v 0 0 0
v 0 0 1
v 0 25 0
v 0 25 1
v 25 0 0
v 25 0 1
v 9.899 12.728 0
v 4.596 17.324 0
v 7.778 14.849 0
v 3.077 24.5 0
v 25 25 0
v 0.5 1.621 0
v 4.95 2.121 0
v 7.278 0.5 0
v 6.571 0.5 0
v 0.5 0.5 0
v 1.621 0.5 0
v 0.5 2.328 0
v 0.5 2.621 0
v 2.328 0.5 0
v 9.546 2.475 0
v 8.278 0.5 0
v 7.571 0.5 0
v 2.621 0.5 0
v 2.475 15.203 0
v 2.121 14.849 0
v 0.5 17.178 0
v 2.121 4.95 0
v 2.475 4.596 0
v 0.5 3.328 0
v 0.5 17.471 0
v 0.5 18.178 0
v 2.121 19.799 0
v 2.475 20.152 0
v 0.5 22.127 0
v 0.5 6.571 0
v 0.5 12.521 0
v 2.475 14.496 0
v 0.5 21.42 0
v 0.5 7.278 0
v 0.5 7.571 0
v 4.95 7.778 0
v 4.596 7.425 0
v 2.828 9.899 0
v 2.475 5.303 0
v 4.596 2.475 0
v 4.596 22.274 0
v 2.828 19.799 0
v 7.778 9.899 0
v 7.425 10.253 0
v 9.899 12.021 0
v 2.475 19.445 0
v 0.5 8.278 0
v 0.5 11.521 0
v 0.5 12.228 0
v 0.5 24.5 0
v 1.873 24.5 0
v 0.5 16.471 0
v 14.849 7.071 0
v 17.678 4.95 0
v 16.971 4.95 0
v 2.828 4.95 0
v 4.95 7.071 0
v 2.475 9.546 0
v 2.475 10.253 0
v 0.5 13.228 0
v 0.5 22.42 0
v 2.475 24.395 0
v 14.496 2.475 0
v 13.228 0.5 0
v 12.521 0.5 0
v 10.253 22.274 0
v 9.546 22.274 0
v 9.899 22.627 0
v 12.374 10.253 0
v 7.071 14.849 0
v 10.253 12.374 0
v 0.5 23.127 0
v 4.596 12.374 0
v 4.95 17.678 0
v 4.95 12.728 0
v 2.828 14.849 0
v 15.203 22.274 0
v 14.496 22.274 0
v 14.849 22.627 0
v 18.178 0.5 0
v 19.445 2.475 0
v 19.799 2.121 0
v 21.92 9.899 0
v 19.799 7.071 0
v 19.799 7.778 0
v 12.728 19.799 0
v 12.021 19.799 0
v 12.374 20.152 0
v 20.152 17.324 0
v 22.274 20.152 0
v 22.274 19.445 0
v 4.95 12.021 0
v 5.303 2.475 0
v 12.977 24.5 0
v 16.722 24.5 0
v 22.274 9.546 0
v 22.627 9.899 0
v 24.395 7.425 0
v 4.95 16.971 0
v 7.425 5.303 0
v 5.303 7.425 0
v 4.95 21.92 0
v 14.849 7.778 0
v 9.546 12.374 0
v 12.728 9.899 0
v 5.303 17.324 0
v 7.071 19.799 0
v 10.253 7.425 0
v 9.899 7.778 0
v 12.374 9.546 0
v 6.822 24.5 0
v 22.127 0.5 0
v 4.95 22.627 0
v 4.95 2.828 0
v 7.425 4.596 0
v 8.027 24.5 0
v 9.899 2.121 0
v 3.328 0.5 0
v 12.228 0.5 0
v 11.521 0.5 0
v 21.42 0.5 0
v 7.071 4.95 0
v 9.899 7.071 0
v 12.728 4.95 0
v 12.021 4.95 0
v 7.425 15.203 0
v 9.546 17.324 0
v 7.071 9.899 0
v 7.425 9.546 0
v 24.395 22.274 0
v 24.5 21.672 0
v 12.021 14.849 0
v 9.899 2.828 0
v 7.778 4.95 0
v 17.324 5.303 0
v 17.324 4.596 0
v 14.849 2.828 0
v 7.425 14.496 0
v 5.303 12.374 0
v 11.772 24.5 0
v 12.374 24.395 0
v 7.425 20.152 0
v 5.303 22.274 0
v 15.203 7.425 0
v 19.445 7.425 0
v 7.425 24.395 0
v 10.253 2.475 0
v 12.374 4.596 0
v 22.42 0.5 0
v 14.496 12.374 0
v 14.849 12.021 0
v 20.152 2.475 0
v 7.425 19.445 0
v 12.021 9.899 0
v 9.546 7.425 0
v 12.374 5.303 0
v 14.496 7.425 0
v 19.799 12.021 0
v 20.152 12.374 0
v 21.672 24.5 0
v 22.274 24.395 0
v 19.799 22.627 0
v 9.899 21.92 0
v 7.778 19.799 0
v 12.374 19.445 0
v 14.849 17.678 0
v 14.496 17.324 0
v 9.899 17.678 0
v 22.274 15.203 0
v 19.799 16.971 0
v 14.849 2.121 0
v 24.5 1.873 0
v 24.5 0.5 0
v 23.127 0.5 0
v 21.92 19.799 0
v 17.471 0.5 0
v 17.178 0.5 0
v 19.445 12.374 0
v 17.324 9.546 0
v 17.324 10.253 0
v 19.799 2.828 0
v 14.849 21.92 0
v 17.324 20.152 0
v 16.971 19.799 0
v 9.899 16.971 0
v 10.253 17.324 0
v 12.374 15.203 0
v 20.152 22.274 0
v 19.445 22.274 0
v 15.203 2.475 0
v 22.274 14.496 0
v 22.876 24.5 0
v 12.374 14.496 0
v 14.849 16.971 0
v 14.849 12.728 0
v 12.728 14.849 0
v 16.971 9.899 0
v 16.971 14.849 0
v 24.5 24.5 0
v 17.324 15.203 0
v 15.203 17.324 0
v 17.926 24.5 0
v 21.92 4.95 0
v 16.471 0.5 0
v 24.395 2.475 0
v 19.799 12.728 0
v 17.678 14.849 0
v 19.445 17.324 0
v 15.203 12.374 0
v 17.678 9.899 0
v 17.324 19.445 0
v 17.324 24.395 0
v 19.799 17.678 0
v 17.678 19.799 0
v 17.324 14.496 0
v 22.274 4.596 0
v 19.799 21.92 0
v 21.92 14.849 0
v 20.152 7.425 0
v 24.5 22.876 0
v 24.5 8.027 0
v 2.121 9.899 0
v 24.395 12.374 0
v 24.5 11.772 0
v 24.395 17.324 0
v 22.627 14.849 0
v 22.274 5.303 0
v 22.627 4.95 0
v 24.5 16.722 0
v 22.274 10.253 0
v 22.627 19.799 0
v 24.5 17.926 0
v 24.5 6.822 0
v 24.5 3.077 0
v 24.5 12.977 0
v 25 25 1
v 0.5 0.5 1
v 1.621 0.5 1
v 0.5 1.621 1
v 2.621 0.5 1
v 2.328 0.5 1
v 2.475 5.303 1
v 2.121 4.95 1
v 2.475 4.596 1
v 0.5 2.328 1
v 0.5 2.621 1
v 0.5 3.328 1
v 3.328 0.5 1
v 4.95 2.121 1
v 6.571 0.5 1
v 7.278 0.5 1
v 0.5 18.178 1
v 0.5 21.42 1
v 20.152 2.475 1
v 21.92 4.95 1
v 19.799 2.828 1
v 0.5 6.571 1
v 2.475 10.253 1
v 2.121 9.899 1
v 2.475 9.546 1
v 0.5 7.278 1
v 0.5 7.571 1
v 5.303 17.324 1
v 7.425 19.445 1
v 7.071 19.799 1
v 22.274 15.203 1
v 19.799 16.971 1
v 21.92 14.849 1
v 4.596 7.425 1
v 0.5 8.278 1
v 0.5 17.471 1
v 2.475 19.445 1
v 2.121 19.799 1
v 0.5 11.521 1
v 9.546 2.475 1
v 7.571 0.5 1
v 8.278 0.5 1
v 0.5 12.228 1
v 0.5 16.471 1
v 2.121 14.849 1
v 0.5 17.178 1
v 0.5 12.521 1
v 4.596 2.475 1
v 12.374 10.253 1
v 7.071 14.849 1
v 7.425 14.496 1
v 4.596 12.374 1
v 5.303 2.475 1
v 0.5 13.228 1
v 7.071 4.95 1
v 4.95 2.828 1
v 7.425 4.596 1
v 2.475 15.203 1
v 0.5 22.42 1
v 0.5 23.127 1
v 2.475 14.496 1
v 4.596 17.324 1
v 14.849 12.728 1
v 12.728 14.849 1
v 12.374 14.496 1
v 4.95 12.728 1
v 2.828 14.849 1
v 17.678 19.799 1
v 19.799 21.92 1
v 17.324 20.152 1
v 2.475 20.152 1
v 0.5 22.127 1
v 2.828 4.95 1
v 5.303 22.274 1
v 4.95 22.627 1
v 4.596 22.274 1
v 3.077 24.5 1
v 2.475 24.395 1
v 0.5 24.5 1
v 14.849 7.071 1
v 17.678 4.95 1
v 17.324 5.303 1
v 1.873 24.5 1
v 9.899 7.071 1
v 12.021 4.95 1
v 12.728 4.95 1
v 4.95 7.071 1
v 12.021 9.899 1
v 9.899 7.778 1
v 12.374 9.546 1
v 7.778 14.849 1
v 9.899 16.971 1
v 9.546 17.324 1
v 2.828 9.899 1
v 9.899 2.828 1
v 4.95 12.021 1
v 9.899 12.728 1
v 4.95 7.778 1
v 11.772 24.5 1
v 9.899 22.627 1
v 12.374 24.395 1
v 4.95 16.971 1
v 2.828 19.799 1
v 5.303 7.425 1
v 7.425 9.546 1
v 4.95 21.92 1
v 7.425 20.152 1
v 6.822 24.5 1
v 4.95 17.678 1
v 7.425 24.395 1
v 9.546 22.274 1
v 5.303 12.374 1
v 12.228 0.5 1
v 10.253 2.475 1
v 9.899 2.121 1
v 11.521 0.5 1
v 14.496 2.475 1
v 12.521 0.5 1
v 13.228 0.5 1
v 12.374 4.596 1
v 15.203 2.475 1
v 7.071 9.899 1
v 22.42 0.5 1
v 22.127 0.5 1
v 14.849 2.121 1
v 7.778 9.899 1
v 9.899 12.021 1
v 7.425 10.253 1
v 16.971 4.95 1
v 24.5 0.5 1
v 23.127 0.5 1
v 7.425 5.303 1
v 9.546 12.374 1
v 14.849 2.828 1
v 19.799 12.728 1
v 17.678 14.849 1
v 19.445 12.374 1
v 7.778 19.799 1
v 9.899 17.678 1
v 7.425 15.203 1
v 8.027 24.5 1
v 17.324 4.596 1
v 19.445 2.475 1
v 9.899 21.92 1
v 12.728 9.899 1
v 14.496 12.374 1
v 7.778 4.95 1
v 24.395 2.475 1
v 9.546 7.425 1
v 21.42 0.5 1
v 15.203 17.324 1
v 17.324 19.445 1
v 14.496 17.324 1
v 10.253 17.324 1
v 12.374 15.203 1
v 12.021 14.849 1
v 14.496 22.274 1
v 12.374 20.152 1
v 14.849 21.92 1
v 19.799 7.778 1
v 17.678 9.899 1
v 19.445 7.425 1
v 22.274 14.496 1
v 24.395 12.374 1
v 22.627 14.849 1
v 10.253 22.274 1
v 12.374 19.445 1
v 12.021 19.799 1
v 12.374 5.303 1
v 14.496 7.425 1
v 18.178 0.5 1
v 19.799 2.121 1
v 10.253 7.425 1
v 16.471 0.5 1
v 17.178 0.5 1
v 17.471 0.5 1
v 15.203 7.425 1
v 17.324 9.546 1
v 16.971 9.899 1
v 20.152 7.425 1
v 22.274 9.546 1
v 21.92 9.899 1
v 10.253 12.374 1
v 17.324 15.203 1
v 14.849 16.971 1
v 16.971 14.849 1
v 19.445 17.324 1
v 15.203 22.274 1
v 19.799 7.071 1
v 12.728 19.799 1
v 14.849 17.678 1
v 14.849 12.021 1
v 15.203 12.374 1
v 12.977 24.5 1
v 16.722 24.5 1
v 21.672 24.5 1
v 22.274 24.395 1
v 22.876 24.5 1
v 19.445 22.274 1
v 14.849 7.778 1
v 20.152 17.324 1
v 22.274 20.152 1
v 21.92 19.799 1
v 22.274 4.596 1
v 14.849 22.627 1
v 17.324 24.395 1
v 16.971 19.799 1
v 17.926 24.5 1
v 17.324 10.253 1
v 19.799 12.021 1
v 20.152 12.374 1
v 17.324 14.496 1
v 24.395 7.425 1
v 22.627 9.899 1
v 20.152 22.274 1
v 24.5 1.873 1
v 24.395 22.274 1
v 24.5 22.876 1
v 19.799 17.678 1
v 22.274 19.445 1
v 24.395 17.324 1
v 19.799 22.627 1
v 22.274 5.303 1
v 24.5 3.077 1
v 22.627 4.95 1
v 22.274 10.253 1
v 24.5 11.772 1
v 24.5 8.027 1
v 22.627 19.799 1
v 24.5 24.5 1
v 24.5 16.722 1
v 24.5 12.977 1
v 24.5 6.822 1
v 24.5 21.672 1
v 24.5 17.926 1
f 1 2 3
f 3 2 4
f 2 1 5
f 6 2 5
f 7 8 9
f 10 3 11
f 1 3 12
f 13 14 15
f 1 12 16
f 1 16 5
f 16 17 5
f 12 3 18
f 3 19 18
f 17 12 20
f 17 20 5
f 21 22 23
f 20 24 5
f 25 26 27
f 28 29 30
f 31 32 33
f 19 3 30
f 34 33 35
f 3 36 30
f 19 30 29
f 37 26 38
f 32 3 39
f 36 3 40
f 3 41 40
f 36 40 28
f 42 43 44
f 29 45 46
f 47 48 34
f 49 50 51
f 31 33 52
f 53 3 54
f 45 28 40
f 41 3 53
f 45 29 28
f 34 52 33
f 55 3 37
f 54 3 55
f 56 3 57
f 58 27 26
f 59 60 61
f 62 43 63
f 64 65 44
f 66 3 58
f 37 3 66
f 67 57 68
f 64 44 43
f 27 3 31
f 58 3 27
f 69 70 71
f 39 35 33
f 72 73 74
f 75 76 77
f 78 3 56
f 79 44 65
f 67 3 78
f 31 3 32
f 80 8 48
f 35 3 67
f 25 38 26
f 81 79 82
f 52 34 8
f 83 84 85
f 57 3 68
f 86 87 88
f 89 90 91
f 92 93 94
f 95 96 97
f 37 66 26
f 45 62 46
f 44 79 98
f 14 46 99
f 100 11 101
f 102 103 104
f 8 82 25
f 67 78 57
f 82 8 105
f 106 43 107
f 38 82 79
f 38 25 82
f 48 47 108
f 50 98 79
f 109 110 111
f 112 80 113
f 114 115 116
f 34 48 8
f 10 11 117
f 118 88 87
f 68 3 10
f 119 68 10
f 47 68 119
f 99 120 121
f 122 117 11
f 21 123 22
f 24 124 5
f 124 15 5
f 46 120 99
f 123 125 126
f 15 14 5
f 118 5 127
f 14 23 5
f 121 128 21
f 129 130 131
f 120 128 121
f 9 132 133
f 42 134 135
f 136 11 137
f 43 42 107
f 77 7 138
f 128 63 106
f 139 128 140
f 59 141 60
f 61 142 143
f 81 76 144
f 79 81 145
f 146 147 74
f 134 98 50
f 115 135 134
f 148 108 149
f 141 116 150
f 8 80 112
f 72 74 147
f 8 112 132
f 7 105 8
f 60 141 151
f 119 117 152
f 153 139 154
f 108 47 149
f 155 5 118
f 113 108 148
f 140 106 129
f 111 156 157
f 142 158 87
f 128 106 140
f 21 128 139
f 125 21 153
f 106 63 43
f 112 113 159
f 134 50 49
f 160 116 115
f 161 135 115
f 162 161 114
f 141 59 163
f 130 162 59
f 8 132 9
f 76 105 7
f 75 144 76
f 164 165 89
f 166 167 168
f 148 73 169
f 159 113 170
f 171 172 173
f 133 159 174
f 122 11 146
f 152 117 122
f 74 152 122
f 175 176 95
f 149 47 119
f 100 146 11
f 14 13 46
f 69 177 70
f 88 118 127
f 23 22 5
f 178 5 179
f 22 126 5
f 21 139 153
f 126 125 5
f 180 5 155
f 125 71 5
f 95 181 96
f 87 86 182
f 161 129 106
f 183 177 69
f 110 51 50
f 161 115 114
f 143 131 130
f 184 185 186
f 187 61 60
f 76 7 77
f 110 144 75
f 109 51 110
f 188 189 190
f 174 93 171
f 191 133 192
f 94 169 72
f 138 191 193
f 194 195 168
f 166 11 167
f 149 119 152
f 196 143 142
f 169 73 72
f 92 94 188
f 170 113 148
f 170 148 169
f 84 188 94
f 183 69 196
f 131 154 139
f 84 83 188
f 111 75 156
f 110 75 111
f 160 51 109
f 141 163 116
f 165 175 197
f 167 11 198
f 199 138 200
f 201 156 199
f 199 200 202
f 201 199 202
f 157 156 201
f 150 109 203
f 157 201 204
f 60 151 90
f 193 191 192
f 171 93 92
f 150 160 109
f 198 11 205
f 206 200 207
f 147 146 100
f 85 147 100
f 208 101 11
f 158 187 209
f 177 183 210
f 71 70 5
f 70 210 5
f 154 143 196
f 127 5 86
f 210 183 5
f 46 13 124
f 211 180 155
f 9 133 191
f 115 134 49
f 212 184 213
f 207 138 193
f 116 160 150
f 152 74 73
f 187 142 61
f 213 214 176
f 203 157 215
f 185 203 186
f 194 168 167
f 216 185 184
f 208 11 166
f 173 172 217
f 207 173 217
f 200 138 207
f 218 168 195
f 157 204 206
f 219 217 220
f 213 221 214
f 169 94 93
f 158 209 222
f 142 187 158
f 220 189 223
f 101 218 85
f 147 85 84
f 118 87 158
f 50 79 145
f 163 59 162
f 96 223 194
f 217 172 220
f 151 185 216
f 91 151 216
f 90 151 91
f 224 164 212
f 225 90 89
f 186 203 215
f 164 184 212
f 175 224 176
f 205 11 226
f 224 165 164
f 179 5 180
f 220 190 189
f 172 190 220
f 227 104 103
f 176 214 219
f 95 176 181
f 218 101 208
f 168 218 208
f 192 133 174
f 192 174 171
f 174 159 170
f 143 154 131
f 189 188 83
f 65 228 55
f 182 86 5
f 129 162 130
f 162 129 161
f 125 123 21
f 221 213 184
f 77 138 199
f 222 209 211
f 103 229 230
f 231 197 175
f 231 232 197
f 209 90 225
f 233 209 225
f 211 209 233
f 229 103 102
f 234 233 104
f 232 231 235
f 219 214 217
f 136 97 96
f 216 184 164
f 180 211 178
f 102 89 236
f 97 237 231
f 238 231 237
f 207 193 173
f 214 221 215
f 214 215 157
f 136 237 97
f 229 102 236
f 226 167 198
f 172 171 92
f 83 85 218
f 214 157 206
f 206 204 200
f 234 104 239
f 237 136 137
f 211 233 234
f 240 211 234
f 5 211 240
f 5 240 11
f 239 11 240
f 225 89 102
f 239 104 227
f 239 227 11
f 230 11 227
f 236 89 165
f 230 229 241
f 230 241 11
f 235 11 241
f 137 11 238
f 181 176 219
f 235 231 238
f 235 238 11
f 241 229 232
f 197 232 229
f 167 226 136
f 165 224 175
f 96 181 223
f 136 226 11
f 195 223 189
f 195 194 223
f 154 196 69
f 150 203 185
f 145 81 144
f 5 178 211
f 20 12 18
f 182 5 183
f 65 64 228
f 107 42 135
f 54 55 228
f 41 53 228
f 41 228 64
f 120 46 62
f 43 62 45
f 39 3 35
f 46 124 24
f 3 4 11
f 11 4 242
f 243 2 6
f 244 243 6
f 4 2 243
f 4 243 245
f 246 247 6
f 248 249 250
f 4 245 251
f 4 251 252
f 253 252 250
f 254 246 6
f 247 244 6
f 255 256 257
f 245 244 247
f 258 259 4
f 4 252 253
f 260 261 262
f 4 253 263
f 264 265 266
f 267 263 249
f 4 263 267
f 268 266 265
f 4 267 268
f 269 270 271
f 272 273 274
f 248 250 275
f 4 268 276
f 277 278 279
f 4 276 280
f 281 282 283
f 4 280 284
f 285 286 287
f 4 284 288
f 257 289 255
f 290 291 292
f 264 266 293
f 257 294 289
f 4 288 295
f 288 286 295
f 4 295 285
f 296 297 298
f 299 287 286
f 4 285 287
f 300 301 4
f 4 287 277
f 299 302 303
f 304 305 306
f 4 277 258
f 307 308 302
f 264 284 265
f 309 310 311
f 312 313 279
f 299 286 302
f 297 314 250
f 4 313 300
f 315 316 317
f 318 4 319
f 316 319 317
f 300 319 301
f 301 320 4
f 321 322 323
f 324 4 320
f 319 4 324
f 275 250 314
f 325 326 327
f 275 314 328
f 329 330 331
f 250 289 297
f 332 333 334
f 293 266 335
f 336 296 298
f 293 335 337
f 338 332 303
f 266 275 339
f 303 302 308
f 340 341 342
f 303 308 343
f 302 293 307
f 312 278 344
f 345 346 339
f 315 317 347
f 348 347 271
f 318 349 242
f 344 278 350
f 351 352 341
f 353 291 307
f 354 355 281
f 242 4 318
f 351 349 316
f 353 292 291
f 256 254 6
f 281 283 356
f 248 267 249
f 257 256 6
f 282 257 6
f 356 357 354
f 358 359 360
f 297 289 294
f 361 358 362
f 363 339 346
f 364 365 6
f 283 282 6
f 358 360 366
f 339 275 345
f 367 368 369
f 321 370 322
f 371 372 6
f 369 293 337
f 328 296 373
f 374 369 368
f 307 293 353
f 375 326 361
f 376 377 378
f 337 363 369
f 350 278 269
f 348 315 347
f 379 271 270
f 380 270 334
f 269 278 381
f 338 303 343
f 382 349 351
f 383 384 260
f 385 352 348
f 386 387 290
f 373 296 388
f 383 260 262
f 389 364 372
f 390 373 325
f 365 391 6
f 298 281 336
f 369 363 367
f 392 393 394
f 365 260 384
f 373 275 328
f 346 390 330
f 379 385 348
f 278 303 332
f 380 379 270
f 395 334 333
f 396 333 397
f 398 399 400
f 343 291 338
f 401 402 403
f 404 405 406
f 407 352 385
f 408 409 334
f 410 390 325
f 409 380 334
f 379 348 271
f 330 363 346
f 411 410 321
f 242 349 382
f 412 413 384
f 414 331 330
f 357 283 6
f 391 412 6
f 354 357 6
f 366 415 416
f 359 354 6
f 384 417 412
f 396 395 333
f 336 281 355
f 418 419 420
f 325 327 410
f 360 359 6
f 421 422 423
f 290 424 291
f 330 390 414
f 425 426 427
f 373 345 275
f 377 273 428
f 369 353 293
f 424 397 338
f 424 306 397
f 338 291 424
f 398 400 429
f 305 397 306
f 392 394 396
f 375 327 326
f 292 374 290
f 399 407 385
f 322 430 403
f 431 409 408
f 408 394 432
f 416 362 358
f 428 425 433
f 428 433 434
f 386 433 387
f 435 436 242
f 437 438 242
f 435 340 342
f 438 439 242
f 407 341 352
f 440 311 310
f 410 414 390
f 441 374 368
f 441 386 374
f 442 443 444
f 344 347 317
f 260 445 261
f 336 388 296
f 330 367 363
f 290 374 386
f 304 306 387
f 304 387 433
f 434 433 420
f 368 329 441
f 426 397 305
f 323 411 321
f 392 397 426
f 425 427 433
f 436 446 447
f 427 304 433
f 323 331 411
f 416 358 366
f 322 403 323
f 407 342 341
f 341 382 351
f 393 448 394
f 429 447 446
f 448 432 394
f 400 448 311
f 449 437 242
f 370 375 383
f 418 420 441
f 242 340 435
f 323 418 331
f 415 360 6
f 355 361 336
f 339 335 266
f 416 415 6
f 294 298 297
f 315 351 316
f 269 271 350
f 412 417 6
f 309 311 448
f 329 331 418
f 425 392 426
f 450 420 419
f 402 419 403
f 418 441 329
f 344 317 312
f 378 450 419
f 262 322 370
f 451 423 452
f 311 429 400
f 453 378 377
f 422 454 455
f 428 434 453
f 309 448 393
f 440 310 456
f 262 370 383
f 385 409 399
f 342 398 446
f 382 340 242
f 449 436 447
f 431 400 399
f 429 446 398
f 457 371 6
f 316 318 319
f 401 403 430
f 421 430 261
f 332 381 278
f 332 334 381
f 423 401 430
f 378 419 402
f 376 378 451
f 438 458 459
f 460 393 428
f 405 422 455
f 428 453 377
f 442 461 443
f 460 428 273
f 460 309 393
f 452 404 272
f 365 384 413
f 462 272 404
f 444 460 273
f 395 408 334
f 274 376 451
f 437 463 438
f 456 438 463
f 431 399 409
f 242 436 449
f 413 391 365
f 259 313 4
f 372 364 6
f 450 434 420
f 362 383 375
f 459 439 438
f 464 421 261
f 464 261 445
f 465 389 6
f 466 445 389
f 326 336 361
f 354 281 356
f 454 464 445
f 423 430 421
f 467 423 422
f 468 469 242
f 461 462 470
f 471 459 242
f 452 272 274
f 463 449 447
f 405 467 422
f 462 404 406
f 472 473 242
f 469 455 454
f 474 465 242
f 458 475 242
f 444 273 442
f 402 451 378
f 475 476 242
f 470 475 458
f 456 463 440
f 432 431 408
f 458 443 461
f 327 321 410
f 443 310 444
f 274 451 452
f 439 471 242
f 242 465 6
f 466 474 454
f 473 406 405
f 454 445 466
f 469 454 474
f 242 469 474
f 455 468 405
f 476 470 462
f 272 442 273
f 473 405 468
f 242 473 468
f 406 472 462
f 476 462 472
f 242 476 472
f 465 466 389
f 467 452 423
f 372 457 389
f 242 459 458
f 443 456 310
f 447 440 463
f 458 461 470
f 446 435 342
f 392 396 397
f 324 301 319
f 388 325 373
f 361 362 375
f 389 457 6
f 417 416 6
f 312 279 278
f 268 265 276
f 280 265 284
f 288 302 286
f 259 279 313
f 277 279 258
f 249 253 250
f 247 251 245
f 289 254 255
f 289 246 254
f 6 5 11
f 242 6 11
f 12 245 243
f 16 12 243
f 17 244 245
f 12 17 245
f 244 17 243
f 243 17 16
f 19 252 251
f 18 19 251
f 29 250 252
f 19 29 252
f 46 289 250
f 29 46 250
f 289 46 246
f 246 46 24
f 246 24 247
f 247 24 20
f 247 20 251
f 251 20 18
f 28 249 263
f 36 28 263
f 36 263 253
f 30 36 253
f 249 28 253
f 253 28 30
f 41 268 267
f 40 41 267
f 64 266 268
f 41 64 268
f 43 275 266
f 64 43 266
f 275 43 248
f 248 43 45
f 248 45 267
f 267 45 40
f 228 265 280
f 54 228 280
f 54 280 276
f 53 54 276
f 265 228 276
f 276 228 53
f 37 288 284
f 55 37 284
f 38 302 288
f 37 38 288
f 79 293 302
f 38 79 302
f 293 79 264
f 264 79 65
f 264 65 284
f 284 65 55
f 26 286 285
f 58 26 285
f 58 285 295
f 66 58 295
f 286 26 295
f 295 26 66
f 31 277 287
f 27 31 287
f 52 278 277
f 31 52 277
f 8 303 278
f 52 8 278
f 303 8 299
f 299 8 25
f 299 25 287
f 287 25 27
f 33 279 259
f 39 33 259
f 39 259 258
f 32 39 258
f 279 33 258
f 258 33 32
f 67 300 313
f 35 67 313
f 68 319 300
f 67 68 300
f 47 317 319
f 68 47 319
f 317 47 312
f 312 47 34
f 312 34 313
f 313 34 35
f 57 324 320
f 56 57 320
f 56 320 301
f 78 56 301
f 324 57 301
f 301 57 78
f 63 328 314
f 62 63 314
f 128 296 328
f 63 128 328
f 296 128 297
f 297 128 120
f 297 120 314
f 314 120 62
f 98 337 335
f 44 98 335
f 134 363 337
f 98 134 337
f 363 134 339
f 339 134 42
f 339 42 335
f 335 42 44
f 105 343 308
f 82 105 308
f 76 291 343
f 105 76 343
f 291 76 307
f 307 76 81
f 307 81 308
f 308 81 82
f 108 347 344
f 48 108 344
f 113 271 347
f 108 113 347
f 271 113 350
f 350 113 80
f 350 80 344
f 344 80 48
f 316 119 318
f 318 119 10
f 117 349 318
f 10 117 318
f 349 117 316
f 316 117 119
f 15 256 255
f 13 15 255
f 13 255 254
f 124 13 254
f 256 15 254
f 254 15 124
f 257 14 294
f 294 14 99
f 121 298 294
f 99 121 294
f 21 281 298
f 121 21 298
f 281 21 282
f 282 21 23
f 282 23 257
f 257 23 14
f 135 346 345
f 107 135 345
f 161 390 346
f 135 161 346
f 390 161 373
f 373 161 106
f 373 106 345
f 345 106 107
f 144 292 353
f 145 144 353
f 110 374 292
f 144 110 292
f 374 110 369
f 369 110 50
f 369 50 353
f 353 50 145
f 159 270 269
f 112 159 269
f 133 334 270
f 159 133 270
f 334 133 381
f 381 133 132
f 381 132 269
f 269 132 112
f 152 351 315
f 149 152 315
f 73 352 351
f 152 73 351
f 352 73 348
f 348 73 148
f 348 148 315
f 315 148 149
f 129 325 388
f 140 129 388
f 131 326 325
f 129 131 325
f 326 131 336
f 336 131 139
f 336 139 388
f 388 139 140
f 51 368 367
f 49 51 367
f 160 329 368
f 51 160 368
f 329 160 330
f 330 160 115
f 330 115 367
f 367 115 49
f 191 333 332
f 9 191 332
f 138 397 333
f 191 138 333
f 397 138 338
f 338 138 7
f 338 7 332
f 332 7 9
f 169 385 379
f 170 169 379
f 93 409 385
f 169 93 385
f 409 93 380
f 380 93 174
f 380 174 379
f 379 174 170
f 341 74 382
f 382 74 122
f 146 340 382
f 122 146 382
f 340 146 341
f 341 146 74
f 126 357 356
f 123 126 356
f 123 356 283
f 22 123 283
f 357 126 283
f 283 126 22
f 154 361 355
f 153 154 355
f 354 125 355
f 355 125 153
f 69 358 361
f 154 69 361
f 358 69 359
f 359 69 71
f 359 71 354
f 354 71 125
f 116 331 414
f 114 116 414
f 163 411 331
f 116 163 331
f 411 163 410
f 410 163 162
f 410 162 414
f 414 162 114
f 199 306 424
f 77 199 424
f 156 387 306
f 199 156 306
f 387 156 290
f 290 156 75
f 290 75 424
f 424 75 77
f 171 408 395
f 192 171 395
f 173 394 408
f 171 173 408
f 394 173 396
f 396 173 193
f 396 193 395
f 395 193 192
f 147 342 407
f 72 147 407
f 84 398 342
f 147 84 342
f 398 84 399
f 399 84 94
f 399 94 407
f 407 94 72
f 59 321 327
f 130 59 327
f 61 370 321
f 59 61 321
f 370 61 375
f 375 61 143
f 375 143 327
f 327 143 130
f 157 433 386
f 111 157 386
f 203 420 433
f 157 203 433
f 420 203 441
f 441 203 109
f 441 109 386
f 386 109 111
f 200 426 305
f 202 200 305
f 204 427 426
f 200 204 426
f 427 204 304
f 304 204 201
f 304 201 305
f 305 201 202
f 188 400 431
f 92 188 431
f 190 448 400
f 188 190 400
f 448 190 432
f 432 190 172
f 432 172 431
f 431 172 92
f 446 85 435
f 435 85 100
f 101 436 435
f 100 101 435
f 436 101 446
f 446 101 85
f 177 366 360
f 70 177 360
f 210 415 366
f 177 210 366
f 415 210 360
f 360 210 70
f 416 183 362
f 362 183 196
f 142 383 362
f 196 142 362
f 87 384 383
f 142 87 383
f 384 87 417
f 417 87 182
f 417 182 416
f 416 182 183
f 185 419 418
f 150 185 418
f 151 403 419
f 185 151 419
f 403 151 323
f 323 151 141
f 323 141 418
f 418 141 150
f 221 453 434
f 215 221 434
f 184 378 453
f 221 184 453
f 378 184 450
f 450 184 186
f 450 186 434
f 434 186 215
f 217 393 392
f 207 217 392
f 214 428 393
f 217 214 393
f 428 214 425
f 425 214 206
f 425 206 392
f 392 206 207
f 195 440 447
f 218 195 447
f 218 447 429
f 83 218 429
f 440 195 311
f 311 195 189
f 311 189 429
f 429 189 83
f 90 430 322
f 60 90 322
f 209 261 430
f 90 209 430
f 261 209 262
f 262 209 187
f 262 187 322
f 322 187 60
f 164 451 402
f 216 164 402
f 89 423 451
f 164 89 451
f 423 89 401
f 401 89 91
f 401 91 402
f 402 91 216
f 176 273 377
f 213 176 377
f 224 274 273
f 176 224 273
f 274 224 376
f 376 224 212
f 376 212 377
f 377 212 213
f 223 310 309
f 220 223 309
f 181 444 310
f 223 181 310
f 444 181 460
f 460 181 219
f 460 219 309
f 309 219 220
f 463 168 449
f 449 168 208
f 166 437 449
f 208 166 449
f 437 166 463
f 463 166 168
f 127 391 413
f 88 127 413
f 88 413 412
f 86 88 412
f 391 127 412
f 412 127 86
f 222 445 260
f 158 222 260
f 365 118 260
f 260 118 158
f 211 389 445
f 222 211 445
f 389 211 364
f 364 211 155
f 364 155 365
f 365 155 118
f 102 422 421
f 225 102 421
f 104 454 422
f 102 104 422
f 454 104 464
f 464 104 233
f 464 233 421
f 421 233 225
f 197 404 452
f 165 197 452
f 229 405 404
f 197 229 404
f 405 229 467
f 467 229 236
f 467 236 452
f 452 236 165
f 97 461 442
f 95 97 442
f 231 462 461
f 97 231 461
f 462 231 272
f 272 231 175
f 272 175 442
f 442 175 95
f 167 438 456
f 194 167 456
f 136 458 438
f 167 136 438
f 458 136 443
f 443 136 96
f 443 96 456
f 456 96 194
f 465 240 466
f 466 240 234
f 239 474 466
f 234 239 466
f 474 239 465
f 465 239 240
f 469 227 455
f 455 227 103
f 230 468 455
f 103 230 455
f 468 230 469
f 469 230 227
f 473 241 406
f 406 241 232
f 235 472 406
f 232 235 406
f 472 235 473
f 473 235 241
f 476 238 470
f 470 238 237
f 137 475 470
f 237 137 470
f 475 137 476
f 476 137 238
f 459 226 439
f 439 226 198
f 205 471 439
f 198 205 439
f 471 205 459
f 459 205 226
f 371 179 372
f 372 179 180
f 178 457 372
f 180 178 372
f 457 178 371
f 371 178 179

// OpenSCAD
// file: cube_mesh.scad
// demo
// cube_mesh([50, 50, 1], 3, 1);

/**
 * A mesh with cube-shaped holes in it. (rotated 45°)
 */
module cube_mesh(size, hole_size=3, spacing=1){
  hyp=sqrt(pow(hole_size,2) + pow(hole_size,2));
  spacing_hyp=sqrt(pow(spacing,2) + pow(spacing,2));

  difference(){
    cube([size[0],size[1],size[2]]);
    intersection(){
      translate([spacing, spacing, -0.5])
        cube([size[0]-spacing*2,size[1]-spacing*2,size[2]+1]);
      translate([0,0,-0.5])
        for (i_y = [-hyp/2:hyp + spacing_hyp:size[1]]){
          for (i_x = [0:hyp + spacing_hyp:size[0]+hyp]){
            translate([i_x, i_y, 0])
              rotate([0,0,45]){
                cube([hole_size,hole_size,size[2]+1]);
                translate([hole_size+spacing,0,0])
                  cube([hole_size,hole_size,size[2]+1]);
              }
          }
       }
    }
  }
}
// main file
include <cube_mesh.scad>

// a 25mm × 25mm × 1mm mesh with 3mm cube holes and 0.5mm spacing between them
cube_mesh([25, 25, 1], 3, 0.5);
